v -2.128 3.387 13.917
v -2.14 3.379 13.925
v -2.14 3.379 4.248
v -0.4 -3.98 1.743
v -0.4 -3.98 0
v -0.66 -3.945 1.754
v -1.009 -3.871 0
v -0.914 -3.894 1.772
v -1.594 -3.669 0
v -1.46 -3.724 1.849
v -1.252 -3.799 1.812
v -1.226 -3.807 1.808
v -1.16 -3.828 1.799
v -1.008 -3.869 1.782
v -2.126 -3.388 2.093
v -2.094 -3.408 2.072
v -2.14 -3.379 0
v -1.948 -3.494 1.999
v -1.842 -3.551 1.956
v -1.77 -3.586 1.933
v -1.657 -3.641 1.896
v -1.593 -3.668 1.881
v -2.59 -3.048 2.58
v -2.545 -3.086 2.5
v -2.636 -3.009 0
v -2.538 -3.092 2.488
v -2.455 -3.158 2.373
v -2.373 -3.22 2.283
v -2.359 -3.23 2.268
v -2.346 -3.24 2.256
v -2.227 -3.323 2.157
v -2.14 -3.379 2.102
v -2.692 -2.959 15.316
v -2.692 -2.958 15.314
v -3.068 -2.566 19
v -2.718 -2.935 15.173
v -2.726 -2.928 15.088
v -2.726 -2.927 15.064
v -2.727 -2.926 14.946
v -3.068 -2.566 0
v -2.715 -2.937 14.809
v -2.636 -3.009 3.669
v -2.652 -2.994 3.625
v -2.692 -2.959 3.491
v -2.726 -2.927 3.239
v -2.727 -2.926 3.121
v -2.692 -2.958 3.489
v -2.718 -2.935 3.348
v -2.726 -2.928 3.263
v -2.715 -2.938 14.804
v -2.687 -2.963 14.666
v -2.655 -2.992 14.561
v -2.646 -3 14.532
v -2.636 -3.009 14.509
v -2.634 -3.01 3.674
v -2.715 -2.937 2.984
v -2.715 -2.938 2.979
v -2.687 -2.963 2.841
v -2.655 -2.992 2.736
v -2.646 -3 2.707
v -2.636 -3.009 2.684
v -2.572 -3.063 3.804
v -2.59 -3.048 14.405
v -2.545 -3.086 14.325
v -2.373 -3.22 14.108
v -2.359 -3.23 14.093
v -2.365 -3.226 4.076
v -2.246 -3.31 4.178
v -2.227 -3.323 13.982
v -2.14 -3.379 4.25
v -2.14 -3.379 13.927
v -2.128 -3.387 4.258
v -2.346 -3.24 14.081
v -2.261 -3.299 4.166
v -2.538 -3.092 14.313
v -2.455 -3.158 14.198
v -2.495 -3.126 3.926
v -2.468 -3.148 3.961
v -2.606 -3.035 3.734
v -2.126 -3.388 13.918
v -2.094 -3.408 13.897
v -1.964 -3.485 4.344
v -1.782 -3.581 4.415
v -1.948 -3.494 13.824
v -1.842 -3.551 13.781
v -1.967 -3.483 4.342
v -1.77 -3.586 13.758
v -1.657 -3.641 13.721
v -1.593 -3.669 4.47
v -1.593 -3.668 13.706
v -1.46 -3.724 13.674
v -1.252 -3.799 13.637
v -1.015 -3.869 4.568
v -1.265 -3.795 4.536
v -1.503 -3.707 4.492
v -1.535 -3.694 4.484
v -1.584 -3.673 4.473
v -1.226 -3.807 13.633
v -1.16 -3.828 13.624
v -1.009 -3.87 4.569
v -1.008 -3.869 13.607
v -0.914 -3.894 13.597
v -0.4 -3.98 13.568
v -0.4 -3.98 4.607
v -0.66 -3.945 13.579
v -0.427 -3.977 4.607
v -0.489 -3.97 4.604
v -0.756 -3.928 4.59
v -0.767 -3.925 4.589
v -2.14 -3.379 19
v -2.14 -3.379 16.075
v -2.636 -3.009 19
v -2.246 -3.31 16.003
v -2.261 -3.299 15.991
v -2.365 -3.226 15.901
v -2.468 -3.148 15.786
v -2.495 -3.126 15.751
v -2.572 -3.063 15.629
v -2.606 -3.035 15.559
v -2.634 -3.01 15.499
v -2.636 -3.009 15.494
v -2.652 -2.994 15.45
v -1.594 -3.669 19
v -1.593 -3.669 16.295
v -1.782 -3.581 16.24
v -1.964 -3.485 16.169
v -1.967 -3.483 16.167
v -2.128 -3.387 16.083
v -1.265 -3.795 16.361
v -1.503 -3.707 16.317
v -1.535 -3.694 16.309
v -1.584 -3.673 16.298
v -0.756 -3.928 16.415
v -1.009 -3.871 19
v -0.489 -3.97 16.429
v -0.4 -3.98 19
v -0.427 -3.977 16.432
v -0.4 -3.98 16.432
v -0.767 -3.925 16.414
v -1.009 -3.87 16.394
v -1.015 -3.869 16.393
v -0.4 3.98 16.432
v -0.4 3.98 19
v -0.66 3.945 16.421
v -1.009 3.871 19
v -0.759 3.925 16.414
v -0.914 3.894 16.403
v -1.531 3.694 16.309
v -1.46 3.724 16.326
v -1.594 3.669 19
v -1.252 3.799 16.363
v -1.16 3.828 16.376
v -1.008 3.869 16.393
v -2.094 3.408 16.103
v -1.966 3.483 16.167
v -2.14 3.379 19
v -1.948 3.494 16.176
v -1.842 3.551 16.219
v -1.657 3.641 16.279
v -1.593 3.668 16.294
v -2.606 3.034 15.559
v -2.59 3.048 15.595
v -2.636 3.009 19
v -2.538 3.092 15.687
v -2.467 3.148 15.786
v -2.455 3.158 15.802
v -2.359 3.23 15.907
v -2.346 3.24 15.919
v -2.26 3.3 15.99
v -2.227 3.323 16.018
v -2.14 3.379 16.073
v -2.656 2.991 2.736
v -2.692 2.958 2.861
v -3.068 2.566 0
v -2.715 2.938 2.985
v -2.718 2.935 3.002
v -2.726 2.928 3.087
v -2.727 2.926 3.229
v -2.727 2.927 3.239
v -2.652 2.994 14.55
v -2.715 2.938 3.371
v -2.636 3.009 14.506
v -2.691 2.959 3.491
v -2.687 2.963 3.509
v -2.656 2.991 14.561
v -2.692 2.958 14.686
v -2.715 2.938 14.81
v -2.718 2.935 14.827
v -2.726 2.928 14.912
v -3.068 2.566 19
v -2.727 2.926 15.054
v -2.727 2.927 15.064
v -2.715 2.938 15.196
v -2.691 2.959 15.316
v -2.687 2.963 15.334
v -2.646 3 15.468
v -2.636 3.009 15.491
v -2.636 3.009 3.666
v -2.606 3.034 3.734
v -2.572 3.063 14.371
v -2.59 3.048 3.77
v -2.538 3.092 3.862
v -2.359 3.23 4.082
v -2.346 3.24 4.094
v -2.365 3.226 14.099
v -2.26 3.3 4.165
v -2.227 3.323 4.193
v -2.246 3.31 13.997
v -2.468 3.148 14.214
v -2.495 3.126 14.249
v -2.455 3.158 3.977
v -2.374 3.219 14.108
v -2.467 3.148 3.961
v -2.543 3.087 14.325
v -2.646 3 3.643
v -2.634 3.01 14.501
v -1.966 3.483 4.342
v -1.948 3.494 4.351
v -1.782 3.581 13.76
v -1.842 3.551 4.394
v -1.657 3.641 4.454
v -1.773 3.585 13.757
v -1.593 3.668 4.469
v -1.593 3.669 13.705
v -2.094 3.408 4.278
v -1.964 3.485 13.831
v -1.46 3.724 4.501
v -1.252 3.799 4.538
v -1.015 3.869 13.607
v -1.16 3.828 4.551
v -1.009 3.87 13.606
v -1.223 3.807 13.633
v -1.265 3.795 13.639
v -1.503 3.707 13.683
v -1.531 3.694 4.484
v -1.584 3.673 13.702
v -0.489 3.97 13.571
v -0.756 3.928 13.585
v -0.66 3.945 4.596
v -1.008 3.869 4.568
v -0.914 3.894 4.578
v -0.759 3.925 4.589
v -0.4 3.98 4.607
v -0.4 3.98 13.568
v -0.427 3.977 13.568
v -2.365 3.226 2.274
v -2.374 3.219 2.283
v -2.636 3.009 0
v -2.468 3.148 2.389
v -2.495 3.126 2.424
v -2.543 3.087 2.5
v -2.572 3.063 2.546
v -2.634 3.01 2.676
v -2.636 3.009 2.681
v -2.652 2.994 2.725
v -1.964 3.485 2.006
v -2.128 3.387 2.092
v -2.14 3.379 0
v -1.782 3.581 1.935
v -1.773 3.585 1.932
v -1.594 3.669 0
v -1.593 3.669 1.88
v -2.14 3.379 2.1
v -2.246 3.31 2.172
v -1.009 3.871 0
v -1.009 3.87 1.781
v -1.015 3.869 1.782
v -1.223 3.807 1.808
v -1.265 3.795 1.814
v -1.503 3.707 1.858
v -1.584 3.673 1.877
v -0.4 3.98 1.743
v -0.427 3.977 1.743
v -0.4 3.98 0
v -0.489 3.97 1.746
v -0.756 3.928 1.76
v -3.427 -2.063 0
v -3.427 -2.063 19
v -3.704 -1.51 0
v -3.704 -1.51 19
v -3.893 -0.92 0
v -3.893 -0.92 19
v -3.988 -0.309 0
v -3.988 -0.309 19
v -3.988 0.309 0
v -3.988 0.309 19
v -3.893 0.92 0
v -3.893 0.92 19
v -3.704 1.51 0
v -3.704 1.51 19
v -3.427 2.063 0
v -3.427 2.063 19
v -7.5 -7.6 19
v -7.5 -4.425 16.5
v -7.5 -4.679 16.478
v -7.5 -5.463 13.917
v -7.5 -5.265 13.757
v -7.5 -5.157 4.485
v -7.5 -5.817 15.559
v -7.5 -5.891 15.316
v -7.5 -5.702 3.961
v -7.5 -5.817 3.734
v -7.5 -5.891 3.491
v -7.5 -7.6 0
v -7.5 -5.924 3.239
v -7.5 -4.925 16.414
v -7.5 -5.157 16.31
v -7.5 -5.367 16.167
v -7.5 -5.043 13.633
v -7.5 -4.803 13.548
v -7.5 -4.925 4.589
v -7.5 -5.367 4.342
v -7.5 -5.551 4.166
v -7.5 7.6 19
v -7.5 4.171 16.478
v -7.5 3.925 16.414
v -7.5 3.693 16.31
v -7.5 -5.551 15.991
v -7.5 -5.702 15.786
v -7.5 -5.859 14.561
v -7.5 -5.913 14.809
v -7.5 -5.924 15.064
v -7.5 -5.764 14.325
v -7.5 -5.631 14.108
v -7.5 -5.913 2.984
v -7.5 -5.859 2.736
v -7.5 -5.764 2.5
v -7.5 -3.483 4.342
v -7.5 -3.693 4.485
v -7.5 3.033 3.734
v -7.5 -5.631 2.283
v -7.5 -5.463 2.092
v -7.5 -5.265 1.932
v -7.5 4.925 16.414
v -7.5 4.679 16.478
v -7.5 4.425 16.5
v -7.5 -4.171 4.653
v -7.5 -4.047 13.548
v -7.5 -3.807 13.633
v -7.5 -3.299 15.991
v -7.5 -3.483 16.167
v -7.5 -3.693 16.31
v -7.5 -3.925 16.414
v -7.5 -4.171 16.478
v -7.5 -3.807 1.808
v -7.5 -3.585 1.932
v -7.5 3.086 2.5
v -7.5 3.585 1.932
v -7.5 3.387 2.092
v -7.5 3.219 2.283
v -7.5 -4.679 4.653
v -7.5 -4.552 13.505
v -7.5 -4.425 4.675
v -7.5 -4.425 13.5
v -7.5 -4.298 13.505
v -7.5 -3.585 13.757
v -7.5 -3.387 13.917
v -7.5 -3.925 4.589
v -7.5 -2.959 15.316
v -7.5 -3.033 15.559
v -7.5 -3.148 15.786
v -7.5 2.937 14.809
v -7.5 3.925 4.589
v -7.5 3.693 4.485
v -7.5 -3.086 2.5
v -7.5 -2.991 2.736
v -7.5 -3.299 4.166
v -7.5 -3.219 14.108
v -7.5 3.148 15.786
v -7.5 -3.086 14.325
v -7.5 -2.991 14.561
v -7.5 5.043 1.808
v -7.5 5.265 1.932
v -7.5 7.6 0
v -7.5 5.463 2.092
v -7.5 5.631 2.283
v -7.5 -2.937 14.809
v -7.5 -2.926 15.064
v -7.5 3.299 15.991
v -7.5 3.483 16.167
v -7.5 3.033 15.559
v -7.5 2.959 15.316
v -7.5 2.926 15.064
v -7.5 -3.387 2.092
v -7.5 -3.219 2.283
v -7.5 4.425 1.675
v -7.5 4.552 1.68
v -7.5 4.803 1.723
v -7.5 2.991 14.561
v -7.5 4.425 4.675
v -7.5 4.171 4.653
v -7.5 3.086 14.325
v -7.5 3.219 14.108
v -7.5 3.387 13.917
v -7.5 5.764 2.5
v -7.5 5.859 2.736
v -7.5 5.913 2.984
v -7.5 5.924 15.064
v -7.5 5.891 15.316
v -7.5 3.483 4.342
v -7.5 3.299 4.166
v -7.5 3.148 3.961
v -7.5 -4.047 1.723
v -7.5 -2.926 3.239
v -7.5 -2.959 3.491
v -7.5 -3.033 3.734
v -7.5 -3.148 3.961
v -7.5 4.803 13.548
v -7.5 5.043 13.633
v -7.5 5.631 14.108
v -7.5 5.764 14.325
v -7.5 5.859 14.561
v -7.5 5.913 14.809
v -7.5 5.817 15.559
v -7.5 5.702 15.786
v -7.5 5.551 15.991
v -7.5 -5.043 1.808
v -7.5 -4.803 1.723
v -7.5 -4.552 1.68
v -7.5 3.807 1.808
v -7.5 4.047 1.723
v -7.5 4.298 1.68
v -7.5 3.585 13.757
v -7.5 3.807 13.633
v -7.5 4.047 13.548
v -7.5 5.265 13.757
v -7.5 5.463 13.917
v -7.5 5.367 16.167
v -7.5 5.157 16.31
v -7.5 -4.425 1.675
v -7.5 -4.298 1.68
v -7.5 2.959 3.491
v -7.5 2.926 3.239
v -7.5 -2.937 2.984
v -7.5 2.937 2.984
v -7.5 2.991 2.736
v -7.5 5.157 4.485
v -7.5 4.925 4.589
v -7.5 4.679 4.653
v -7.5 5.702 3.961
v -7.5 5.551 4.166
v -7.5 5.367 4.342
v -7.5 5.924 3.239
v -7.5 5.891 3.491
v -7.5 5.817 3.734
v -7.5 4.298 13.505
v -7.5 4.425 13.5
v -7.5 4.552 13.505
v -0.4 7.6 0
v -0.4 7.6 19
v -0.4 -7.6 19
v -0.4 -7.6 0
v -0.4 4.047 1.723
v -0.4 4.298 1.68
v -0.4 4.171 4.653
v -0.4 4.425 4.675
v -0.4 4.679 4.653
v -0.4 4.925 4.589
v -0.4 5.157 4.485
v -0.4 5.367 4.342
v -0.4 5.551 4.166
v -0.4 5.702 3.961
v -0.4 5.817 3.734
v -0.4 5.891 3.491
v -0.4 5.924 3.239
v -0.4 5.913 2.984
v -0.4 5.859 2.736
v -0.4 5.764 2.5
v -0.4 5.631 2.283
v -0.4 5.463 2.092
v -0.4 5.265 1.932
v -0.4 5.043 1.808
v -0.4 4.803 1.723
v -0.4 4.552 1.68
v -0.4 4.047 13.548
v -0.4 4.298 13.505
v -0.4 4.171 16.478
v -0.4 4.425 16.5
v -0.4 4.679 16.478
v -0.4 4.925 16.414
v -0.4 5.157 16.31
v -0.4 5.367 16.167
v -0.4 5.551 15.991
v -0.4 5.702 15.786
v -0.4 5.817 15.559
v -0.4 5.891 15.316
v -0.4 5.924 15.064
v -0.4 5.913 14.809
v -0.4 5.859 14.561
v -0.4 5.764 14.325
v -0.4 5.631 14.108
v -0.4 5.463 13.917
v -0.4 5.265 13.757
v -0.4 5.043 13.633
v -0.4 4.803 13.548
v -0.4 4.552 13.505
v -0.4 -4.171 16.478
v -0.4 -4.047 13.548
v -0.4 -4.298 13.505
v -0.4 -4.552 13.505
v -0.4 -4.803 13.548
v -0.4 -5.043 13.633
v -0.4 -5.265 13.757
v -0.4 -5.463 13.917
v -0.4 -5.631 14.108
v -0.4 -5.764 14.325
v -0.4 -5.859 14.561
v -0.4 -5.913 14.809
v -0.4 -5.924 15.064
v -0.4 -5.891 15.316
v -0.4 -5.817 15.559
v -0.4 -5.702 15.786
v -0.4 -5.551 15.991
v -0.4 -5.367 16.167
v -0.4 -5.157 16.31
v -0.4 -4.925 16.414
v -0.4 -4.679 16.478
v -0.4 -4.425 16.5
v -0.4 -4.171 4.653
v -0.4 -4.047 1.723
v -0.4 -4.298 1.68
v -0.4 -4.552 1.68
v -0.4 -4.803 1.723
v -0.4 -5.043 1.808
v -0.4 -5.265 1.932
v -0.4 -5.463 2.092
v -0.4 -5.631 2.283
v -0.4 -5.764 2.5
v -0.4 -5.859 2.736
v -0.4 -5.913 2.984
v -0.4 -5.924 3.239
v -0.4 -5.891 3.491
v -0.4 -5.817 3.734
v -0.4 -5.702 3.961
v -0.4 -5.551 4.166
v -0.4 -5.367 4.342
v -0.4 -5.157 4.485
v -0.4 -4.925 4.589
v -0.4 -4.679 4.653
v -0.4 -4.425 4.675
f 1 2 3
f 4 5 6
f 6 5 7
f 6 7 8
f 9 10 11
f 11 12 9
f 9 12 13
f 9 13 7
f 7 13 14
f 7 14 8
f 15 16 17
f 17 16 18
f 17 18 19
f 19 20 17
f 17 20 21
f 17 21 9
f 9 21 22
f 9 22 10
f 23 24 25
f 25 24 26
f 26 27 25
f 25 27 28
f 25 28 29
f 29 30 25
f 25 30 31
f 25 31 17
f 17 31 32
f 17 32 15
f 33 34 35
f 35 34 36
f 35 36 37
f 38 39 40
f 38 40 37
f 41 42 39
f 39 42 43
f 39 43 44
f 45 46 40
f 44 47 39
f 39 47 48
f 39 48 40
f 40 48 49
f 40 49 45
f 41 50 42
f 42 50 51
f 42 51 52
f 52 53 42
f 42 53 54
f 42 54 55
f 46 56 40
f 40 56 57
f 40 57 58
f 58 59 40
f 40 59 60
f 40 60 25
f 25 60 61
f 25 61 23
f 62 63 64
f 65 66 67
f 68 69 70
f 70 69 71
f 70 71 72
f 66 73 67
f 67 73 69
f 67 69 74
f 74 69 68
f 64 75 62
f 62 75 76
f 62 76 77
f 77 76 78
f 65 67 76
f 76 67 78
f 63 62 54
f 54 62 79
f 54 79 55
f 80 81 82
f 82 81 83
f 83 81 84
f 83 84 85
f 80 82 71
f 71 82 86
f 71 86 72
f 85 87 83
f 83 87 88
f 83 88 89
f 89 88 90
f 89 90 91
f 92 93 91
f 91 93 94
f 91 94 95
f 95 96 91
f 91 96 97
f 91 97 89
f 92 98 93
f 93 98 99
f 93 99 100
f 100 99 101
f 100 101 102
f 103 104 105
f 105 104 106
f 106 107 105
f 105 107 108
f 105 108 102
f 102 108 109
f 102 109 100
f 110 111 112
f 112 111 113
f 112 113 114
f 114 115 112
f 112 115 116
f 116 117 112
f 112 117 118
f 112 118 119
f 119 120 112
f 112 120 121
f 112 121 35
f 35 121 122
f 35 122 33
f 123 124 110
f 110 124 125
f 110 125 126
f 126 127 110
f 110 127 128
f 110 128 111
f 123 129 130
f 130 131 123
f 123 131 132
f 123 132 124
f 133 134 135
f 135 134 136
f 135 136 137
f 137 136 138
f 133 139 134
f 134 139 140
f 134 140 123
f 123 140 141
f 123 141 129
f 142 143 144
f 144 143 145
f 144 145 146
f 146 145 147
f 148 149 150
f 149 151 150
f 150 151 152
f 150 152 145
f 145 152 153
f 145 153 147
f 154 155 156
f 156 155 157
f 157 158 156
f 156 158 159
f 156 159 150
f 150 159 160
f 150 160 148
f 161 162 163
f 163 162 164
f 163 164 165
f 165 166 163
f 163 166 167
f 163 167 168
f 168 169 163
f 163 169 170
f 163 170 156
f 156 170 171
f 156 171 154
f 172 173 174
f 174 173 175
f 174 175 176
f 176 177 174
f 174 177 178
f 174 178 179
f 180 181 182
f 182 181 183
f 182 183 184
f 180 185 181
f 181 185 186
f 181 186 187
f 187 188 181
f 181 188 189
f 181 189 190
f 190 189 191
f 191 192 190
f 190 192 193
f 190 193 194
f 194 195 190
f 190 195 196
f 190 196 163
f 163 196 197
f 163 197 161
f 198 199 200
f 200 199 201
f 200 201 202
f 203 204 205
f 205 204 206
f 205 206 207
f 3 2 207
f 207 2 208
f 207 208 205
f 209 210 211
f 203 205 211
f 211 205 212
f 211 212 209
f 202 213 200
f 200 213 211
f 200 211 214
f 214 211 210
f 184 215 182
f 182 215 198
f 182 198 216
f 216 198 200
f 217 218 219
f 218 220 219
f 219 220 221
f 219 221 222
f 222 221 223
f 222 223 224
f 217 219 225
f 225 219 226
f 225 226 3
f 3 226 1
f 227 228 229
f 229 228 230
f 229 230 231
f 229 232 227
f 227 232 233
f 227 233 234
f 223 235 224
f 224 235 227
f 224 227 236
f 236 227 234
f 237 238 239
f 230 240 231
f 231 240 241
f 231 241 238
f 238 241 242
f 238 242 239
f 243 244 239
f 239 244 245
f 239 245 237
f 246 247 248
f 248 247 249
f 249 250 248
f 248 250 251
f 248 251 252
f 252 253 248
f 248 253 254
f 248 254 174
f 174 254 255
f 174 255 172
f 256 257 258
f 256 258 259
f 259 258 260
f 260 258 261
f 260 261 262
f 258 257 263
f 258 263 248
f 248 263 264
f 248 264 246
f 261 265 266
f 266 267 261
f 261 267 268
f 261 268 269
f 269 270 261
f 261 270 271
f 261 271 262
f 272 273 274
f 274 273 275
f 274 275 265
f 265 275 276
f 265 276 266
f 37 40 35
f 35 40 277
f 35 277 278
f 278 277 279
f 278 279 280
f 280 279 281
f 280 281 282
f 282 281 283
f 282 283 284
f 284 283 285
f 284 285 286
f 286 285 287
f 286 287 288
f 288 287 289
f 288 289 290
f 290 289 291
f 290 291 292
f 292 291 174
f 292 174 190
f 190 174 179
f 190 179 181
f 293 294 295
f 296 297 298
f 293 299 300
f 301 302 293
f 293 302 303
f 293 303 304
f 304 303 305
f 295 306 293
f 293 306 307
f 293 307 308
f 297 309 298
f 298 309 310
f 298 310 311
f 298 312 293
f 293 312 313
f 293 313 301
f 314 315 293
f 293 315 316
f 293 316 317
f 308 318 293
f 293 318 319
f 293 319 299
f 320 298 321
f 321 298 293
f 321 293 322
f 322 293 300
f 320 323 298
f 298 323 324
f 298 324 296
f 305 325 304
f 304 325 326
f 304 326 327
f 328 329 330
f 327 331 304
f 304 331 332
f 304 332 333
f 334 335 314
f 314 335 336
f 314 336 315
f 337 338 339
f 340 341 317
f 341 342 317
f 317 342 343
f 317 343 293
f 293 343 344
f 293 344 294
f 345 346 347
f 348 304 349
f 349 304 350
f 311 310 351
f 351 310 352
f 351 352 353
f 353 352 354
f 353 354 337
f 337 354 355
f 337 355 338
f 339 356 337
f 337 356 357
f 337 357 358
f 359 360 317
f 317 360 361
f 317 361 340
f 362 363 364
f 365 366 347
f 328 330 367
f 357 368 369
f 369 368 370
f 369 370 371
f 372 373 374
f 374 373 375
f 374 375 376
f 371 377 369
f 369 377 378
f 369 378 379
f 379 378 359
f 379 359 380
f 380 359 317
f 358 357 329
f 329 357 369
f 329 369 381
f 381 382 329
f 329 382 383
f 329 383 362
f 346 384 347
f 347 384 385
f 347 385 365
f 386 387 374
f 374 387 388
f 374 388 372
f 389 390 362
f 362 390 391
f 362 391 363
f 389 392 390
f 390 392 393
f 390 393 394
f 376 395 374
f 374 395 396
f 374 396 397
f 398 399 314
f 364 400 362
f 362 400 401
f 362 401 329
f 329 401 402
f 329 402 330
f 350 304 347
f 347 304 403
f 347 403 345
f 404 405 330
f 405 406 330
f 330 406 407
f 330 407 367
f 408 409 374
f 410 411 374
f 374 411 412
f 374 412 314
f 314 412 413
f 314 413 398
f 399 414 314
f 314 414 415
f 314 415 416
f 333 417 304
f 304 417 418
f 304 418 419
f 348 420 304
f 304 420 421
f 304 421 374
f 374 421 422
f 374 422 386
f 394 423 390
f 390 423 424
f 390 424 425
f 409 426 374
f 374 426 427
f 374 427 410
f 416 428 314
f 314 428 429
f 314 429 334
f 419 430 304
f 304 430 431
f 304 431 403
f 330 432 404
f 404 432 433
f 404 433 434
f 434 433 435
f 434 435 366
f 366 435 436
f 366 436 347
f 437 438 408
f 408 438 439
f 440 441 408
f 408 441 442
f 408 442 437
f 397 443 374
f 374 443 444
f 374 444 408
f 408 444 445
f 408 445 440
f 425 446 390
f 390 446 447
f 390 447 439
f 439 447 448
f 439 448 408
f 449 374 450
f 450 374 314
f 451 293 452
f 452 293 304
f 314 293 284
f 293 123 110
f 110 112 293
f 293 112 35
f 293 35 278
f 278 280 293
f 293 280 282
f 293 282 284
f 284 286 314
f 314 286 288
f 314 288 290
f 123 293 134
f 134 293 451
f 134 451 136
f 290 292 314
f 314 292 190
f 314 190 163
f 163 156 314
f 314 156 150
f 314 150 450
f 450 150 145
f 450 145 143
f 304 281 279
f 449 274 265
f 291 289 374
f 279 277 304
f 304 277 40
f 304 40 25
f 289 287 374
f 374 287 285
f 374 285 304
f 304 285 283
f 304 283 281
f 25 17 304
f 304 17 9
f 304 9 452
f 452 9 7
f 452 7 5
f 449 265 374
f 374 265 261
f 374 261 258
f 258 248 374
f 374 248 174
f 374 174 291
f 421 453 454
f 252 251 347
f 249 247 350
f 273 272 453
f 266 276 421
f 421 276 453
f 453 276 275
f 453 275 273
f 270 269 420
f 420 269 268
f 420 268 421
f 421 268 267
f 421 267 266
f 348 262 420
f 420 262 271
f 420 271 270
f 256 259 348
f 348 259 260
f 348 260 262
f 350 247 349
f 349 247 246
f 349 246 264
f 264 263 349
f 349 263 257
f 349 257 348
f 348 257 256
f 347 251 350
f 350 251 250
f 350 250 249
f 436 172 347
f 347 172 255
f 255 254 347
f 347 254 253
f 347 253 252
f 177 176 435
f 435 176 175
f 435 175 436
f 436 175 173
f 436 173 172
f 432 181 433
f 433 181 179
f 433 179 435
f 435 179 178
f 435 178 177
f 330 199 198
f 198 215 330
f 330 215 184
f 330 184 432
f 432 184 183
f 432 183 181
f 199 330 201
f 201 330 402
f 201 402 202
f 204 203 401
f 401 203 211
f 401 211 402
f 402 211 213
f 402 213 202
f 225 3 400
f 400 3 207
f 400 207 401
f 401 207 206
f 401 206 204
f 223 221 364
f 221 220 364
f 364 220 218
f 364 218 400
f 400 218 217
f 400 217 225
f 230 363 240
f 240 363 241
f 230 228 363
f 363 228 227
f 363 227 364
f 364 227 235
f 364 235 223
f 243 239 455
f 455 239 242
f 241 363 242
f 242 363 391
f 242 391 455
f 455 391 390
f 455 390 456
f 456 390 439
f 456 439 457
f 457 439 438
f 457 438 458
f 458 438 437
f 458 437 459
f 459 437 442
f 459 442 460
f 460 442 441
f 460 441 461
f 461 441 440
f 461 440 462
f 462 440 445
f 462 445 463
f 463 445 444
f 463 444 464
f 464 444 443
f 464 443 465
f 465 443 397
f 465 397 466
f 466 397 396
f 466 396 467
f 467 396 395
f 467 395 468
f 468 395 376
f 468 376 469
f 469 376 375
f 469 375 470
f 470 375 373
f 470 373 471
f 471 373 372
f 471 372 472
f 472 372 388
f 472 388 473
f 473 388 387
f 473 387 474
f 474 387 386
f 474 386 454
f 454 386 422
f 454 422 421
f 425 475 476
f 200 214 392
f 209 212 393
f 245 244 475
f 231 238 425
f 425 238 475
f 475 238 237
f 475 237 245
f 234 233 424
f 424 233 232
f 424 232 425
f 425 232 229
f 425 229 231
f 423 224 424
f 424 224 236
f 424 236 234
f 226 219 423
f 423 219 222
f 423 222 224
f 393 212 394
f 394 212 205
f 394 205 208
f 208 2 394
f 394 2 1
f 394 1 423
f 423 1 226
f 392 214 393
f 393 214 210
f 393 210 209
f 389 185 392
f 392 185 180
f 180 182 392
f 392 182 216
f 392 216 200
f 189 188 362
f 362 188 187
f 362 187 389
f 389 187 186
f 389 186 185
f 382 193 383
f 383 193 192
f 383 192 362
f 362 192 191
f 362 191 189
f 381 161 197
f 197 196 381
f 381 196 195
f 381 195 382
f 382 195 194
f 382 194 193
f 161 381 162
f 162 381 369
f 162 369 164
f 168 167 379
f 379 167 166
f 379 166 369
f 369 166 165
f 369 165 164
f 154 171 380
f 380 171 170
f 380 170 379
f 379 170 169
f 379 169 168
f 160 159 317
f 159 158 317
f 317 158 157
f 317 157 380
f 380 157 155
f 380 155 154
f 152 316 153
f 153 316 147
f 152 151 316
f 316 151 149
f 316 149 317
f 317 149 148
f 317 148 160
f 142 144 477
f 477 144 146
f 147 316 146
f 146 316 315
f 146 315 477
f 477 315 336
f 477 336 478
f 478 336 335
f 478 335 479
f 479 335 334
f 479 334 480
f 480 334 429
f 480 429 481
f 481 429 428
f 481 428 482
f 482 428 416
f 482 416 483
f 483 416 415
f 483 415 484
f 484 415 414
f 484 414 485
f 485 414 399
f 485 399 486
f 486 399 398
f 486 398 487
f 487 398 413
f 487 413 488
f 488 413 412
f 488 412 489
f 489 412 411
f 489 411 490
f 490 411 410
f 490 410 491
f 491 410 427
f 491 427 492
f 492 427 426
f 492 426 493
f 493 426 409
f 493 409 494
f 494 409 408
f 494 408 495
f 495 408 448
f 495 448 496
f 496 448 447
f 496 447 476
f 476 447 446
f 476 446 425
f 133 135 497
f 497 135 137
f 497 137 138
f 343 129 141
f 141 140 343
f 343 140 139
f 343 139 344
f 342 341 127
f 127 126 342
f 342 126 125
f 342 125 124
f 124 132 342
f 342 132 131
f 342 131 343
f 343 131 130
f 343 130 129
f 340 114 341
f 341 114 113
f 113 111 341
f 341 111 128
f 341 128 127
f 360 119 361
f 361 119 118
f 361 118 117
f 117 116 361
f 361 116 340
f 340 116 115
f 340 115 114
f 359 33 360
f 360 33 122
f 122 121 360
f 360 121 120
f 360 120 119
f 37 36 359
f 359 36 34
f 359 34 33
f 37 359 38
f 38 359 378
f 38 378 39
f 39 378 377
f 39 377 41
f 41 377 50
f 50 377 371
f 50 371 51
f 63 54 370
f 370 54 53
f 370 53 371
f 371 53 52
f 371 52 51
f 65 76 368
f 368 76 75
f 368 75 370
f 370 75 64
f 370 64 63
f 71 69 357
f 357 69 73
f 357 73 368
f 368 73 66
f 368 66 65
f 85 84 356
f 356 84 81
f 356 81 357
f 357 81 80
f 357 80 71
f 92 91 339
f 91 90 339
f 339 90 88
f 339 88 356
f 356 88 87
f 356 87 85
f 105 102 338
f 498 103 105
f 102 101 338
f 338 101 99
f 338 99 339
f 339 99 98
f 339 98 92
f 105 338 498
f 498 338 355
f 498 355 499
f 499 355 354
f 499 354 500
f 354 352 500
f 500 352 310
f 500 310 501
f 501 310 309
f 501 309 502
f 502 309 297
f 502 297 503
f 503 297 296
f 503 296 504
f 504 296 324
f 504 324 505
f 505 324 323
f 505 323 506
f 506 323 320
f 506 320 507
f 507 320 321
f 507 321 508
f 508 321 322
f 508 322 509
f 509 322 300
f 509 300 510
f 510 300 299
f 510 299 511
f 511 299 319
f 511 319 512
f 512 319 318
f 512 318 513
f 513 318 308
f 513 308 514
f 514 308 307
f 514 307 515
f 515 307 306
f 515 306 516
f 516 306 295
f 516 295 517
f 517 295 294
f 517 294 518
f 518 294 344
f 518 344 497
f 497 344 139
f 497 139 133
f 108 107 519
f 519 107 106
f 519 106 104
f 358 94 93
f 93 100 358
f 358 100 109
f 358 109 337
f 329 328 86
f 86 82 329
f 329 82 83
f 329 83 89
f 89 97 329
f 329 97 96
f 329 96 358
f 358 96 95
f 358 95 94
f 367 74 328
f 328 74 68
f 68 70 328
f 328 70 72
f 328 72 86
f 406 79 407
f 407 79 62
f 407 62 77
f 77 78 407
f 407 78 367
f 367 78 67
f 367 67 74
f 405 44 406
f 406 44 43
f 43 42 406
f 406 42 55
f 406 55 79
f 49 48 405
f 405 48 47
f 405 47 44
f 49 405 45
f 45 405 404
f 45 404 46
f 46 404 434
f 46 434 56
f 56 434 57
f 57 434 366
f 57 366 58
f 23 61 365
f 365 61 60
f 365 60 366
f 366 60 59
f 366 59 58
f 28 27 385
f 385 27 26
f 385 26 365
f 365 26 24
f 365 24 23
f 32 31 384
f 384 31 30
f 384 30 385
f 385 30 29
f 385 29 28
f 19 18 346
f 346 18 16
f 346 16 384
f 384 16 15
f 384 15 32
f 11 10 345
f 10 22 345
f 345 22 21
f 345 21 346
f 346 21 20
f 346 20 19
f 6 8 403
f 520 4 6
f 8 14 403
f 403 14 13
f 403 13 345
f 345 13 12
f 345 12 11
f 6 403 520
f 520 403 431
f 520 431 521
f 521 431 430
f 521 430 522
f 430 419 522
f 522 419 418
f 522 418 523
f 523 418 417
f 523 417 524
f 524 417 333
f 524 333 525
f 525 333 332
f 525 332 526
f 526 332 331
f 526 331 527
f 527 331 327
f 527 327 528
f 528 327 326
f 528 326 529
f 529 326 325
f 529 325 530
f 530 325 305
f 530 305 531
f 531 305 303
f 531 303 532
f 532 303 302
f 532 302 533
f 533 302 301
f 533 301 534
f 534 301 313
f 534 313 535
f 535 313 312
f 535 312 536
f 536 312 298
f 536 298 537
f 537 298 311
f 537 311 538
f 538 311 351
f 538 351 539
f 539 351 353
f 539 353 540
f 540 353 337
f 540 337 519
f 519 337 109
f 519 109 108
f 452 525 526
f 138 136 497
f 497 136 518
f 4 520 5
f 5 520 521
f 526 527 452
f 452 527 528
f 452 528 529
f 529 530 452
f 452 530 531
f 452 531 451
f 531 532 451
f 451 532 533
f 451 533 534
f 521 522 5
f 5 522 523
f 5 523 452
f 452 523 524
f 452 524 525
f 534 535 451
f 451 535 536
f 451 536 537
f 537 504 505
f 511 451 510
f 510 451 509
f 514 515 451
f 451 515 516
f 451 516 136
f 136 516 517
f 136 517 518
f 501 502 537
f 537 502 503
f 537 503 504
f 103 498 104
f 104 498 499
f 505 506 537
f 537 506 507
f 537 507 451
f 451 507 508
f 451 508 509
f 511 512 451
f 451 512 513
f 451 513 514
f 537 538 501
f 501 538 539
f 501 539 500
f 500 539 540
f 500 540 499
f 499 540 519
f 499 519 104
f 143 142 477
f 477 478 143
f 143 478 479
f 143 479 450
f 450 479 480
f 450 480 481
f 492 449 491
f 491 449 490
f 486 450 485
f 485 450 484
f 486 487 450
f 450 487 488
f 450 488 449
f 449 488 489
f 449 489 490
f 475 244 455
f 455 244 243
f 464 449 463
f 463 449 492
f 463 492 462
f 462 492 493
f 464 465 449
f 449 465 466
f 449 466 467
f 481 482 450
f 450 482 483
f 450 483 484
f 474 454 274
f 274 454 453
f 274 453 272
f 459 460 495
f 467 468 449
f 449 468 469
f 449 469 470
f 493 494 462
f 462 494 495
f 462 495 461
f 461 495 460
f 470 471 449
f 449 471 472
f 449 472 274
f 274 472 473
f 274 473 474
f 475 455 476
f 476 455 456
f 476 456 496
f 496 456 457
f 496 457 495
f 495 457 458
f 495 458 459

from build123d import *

# Parameters (mm, degrees)
EXTRUDE1_DEPTH = 19
SKETCH2_R      = 1.5
EXTRUDE5_DEPTH = 8.5
SKETCH3_W      = 0.4
SKETCH3_H      = 15.2
EXTRUDE6_DEPTH = 20.0000001


with BuildPart() as part:
    # Sketch1 → Extrude1 (new body)
    with BuildSketch(Plane.XY):
        with BuildLine():
            Line((0, 4), (0, 7.6))
            Line((0, 7.6), (-7.5, 7.6))
            Line((-7.5, 7.6), (-7.5, -7.6))
            Line((-7.5, -7.6), (0, -7.6))
            Line((0, -7.6), (0, -4))
            ThreePointArc((0, -4), (-4, 0), (0, 4))
        make_face()
    extrude(amount=EXTRUDE1_DEPTH)

    # Sketch2 → Extrude5 (cut, through all)
    with BuildSketch(Plane(origin=(-7.5, 0, 0), x_dir=(0, 0, -1), z_dir=(1, 0, 0))):
        with Locations((-3.175, 4.425)):
            Circle(SKETCH2_R)
        with Locations((-15, 4.425)):
            Circle(SKETCH2_R)
        with Locations((-15, -4.425)):
            Circle(SKETCH2_R)
        with Locations((-3.175, -4.425)):
            Circle(SKETCH2_R)
    extrude(amount=EXTRUDE5_DEPTH, mode=Mode.SUBTRACT)

    # Sketch3 → Extrude6 (cut, through all)
    with BuildSketch(Plane.XY.offset(19)):
        with Locations((-0.2, 0)):
            Rectangle(SKETCH3_W, SKETCH3_H)
    extrude(amount=-EXTRUDE6_DEPTH, mode=Mode.SUBTRACT)


solid = part.part
